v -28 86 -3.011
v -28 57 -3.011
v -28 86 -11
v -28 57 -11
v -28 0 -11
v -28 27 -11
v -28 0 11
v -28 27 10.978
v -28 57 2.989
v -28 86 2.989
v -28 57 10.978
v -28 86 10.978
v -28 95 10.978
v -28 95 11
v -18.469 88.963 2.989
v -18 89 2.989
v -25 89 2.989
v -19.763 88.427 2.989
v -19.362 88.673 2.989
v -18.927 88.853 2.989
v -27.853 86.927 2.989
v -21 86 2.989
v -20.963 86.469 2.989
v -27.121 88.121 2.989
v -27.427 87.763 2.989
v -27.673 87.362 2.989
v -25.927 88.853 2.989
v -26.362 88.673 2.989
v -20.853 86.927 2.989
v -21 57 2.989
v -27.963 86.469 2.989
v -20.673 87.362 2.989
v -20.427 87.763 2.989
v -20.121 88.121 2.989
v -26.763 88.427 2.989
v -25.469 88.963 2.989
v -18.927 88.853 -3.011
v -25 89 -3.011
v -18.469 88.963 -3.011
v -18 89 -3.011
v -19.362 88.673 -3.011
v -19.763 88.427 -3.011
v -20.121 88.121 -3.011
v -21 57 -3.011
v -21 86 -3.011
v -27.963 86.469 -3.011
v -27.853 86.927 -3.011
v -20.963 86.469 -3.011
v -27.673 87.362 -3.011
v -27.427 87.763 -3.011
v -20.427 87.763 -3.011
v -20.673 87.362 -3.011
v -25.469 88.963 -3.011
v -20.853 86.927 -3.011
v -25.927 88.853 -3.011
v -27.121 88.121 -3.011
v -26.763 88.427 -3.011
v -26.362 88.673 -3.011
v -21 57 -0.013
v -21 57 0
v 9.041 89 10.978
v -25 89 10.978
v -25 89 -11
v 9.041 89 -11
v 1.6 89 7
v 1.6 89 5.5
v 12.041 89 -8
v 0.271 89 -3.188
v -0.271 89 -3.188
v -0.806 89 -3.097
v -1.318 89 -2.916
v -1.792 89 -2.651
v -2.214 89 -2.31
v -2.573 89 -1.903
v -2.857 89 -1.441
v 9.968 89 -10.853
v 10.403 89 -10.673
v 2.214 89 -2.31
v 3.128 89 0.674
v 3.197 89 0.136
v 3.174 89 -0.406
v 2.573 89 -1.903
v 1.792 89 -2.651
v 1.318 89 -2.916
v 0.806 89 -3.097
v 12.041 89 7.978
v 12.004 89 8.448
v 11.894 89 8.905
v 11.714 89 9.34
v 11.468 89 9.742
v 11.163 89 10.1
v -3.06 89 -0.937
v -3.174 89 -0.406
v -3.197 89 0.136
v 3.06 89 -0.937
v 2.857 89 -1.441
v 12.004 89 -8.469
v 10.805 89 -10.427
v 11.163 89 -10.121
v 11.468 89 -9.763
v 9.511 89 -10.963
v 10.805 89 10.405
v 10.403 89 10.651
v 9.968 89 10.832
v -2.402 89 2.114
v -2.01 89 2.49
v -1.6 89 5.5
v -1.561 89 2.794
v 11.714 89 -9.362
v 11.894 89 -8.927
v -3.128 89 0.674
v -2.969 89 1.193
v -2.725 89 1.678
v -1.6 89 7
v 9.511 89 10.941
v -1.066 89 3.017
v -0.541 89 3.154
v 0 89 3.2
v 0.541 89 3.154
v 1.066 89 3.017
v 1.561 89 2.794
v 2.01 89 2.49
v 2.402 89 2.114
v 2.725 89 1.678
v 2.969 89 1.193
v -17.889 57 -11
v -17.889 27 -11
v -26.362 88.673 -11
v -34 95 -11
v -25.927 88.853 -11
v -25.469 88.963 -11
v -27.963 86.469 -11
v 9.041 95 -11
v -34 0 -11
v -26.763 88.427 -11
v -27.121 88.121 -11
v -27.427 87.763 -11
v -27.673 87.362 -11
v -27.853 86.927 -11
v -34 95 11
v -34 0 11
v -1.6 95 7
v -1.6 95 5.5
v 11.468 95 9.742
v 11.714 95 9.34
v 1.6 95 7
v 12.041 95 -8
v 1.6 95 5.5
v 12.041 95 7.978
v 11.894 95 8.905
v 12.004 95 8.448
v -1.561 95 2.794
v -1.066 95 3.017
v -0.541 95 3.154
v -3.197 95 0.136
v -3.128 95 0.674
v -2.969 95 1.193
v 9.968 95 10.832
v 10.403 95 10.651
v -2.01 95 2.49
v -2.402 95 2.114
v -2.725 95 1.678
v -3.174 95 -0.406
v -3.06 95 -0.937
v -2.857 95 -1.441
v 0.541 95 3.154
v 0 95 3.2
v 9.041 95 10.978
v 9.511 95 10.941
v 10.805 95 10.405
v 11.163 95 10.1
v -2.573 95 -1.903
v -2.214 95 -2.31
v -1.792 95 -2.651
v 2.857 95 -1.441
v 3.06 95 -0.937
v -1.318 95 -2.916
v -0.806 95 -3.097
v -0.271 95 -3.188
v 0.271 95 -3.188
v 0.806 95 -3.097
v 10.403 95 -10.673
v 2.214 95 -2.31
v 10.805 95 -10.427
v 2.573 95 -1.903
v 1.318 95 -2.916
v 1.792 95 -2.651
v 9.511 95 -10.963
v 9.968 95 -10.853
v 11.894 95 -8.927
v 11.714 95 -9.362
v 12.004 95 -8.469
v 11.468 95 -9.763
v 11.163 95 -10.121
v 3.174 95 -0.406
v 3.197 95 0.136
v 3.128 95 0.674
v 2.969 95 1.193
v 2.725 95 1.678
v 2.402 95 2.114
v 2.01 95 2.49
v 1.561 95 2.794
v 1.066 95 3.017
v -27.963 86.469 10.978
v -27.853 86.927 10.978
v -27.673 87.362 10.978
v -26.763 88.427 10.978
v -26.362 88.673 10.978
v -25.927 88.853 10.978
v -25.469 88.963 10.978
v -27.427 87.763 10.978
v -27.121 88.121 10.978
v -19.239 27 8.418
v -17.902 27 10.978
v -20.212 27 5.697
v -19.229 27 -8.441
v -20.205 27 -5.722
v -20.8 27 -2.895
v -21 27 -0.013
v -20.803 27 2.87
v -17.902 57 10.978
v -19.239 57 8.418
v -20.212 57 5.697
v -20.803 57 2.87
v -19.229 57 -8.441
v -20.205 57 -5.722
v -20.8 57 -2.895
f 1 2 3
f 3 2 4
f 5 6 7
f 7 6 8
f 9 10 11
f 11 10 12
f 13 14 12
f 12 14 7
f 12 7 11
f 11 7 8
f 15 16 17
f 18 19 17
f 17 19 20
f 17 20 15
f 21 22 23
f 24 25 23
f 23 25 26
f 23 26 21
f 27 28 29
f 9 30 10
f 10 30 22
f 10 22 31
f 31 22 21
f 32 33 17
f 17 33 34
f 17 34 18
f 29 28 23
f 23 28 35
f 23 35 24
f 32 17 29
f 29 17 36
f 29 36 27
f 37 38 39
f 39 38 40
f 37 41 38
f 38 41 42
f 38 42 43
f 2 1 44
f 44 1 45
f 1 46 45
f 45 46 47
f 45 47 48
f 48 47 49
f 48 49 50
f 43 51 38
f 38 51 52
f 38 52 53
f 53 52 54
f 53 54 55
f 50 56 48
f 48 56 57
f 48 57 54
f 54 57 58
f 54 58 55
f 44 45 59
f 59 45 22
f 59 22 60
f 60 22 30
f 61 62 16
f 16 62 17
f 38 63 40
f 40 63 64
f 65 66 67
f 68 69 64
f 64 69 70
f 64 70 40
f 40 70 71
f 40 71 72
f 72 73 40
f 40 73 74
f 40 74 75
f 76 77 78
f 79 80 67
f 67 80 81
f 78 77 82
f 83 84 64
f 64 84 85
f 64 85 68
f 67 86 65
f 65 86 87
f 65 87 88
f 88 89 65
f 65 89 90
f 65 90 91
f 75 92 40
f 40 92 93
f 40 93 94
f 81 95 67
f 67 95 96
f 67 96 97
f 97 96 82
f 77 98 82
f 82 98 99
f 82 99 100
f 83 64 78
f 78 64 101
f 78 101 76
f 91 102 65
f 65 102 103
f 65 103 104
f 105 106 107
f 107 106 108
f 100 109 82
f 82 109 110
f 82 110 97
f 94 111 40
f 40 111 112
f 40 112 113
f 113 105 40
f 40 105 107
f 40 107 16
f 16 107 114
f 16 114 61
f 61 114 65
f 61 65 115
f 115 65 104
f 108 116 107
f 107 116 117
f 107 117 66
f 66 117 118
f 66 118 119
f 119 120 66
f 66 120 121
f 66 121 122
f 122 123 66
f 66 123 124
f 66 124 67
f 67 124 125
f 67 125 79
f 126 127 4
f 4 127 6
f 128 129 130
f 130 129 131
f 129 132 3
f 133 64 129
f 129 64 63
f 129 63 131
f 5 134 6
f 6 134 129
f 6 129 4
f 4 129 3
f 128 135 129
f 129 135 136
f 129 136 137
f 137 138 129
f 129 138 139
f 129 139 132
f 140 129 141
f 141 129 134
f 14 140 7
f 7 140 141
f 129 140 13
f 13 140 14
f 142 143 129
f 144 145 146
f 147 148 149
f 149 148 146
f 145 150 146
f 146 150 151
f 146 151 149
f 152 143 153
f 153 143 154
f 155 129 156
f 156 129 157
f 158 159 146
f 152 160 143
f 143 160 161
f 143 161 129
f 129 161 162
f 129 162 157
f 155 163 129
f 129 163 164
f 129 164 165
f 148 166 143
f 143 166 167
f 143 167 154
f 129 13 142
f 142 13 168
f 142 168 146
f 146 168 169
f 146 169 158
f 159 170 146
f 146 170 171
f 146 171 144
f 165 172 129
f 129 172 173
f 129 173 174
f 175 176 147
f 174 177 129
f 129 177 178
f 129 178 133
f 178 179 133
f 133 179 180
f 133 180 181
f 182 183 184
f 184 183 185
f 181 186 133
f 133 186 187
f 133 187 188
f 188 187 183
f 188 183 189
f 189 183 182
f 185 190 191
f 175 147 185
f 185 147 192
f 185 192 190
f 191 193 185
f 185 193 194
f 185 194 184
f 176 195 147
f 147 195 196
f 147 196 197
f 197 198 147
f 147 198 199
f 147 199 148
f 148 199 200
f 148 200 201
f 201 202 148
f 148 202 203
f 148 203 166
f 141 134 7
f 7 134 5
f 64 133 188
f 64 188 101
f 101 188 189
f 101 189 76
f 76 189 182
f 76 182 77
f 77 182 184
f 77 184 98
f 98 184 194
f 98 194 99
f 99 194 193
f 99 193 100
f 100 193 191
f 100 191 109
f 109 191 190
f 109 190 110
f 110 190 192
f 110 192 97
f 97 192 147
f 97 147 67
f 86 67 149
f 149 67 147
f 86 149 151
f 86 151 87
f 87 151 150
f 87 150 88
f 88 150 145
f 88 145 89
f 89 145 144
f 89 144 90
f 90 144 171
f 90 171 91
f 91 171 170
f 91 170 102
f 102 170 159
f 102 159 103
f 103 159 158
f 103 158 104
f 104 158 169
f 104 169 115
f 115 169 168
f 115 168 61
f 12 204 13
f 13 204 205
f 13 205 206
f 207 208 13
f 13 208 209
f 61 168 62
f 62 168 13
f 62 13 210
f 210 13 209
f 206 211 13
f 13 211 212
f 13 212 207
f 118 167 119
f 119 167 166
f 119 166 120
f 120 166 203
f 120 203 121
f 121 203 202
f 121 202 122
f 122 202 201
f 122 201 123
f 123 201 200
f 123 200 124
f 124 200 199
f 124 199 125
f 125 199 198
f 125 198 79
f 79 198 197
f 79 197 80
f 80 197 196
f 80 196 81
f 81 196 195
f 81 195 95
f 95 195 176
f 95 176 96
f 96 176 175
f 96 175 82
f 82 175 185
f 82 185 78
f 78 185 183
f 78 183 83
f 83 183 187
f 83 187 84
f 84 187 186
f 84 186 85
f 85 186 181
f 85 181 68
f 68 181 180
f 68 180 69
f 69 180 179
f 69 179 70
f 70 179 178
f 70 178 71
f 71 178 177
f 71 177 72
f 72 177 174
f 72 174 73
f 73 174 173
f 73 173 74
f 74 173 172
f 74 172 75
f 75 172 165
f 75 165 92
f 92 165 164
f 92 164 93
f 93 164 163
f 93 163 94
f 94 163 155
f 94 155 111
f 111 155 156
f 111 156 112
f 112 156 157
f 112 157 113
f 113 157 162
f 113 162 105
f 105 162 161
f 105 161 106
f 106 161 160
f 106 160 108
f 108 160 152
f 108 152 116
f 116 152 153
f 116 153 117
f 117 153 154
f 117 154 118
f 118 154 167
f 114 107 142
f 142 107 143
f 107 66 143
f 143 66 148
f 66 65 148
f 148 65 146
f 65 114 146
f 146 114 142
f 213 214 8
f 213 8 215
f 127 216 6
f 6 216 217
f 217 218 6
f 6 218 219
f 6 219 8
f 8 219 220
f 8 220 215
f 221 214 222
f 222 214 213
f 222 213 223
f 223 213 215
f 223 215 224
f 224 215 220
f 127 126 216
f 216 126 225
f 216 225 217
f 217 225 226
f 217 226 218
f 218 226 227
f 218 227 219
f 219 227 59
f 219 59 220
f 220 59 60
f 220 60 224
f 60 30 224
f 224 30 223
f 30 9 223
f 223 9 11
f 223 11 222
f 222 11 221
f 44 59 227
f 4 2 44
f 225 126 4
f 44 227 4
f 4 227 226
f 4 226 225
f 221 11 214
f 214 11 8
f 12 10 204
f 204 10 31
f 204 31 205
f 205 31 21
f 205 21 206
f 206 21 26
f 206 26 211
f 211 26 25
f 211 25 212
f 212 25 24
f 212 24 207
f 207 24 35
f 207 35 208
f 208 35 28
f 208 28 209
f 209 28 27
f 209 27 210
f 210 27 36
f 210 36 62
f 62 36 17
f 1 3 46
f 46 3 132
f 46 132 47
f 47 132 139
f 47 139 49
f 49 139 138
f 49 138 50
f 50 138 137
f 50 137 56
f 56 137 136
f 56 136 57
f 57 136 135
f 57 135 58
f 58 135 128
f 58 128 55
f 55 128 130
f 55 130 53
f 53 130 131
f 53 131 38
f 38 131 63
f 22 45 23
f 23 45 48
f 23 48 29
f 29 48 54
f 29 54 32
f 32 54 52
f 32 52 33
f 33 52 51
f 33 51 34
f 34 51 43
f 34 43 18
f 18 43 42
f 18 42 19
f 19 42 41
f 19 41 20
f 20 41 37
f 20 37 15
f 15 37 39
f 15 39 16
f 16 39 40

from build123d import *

# Parameters (mm, degrees)
SKETCH2_W           = 6
SKETCH2_H           = 22
BOSS_EXTRUDE2_DEPTH = 95
SKETCH3_R           = 3.2
SKETCH3_W           = 3.2
SKETCH3_H           = 1.5
BOSS_EXTRUDE3_DEPTH = 6
SKETCH4_W           = 6
SKETCH4_H           = 62
BOSS_EXTRUDE4_DEPTH = 7
BOSS_EXTRUDE5_DEPTH = 30
FILLET4_R           = 3


with BuildPart() as part:
    # Sketch2 → Boss-Extrude2 (new body)
    with BuildSketch(Plane(origin=(0, 0, 0), x_dir=(1, 0, 0), z_dir=(0, 1, 0))):
        with Locations((-31, 0)):
            Rectangle(SKETCH2_W, SKETCH2_H)
    extrude(amount=BOSS_EXTRUDE2_DEPTH)

    # Sketch3 → Boss-Extrude3 (add)
    with BuildSketch(Plane(origin=(0, 95, 0), x_dir=(1, 0, 0), z_dir=(0, 1, 0))):
        with BuildLine():
            Line((-28, 11), (9.041317524, 11))
            ThreePointArc((9.041317524, 11), (11.162637868, 10.121320344), (12.041317524, 8))
            Line((12.041317524, 8), (12.041317524, -7.97837003))
            ThreePointArc((12.041317524, -7.97837003), (11.162637868, -10.099690374), (9.041317524, -10.97837003))
            Line((9.041317524, -10.97837003), (-28, -10.97837003))
            Line((-28, -10.97837003), (-28, 11))
        make_face()
        with Locations(Location((0, 0, 0), (0, 0, 270))):
            Circle(SKETCH3_R, mode=Mode.SUBTRACT)
        with Locations((0, -6.25)):
            Rectangle(SKETCH3_W, SKETCH3_H, mode=Mode.SUBTRACT)
    extrude(amount=-BOSS_EXTRUDE3_DEPTH)

    # Sketch4 → Boss-Extrude4 (add)
    with BuildSketch(Plane(origin=(-28, 0, 0), x_dir=(0, 0, -1), z_dir=(1, 0, 0))):
        with Locations((0.010814985, 58)):
            Rectangle(SKETCH4_W, SKETCH4_H)
    extrude(amount=BOSS_EXTRUDE4_DEPTH)

    # Sketch5 → Boss-Extrude5 (add)
    with BuildSketch(Plane.XZ.offset(-27)):
        with BuildLine():
            Line((-28, 10.97837003), (-17.901826484, 10.97837003))
            ThreePointArc((-17.901826484, 10.97837003), (-20.999996165, -0.012691382), (-17.88854382, -11))
            Line((-17.88854382, -11), (-28, -11))
            Line((-28, -11), (-28, 10.97837003))
        make_face()
    extrude(amount=-BOSS_EXTRUDE5_DEPTH)

    # Fillet4
    fillet4_edges = [part.edges().sort_by_distance(p)[0] for p in [
        (-28, 89, -7.005407492),
        (-28, 89, 6.983777523),
        (-21, 89, -0.010814985),
    ]]
    fillet(fillet4_edges, radius=FILLET4_R)


solid = part.part
